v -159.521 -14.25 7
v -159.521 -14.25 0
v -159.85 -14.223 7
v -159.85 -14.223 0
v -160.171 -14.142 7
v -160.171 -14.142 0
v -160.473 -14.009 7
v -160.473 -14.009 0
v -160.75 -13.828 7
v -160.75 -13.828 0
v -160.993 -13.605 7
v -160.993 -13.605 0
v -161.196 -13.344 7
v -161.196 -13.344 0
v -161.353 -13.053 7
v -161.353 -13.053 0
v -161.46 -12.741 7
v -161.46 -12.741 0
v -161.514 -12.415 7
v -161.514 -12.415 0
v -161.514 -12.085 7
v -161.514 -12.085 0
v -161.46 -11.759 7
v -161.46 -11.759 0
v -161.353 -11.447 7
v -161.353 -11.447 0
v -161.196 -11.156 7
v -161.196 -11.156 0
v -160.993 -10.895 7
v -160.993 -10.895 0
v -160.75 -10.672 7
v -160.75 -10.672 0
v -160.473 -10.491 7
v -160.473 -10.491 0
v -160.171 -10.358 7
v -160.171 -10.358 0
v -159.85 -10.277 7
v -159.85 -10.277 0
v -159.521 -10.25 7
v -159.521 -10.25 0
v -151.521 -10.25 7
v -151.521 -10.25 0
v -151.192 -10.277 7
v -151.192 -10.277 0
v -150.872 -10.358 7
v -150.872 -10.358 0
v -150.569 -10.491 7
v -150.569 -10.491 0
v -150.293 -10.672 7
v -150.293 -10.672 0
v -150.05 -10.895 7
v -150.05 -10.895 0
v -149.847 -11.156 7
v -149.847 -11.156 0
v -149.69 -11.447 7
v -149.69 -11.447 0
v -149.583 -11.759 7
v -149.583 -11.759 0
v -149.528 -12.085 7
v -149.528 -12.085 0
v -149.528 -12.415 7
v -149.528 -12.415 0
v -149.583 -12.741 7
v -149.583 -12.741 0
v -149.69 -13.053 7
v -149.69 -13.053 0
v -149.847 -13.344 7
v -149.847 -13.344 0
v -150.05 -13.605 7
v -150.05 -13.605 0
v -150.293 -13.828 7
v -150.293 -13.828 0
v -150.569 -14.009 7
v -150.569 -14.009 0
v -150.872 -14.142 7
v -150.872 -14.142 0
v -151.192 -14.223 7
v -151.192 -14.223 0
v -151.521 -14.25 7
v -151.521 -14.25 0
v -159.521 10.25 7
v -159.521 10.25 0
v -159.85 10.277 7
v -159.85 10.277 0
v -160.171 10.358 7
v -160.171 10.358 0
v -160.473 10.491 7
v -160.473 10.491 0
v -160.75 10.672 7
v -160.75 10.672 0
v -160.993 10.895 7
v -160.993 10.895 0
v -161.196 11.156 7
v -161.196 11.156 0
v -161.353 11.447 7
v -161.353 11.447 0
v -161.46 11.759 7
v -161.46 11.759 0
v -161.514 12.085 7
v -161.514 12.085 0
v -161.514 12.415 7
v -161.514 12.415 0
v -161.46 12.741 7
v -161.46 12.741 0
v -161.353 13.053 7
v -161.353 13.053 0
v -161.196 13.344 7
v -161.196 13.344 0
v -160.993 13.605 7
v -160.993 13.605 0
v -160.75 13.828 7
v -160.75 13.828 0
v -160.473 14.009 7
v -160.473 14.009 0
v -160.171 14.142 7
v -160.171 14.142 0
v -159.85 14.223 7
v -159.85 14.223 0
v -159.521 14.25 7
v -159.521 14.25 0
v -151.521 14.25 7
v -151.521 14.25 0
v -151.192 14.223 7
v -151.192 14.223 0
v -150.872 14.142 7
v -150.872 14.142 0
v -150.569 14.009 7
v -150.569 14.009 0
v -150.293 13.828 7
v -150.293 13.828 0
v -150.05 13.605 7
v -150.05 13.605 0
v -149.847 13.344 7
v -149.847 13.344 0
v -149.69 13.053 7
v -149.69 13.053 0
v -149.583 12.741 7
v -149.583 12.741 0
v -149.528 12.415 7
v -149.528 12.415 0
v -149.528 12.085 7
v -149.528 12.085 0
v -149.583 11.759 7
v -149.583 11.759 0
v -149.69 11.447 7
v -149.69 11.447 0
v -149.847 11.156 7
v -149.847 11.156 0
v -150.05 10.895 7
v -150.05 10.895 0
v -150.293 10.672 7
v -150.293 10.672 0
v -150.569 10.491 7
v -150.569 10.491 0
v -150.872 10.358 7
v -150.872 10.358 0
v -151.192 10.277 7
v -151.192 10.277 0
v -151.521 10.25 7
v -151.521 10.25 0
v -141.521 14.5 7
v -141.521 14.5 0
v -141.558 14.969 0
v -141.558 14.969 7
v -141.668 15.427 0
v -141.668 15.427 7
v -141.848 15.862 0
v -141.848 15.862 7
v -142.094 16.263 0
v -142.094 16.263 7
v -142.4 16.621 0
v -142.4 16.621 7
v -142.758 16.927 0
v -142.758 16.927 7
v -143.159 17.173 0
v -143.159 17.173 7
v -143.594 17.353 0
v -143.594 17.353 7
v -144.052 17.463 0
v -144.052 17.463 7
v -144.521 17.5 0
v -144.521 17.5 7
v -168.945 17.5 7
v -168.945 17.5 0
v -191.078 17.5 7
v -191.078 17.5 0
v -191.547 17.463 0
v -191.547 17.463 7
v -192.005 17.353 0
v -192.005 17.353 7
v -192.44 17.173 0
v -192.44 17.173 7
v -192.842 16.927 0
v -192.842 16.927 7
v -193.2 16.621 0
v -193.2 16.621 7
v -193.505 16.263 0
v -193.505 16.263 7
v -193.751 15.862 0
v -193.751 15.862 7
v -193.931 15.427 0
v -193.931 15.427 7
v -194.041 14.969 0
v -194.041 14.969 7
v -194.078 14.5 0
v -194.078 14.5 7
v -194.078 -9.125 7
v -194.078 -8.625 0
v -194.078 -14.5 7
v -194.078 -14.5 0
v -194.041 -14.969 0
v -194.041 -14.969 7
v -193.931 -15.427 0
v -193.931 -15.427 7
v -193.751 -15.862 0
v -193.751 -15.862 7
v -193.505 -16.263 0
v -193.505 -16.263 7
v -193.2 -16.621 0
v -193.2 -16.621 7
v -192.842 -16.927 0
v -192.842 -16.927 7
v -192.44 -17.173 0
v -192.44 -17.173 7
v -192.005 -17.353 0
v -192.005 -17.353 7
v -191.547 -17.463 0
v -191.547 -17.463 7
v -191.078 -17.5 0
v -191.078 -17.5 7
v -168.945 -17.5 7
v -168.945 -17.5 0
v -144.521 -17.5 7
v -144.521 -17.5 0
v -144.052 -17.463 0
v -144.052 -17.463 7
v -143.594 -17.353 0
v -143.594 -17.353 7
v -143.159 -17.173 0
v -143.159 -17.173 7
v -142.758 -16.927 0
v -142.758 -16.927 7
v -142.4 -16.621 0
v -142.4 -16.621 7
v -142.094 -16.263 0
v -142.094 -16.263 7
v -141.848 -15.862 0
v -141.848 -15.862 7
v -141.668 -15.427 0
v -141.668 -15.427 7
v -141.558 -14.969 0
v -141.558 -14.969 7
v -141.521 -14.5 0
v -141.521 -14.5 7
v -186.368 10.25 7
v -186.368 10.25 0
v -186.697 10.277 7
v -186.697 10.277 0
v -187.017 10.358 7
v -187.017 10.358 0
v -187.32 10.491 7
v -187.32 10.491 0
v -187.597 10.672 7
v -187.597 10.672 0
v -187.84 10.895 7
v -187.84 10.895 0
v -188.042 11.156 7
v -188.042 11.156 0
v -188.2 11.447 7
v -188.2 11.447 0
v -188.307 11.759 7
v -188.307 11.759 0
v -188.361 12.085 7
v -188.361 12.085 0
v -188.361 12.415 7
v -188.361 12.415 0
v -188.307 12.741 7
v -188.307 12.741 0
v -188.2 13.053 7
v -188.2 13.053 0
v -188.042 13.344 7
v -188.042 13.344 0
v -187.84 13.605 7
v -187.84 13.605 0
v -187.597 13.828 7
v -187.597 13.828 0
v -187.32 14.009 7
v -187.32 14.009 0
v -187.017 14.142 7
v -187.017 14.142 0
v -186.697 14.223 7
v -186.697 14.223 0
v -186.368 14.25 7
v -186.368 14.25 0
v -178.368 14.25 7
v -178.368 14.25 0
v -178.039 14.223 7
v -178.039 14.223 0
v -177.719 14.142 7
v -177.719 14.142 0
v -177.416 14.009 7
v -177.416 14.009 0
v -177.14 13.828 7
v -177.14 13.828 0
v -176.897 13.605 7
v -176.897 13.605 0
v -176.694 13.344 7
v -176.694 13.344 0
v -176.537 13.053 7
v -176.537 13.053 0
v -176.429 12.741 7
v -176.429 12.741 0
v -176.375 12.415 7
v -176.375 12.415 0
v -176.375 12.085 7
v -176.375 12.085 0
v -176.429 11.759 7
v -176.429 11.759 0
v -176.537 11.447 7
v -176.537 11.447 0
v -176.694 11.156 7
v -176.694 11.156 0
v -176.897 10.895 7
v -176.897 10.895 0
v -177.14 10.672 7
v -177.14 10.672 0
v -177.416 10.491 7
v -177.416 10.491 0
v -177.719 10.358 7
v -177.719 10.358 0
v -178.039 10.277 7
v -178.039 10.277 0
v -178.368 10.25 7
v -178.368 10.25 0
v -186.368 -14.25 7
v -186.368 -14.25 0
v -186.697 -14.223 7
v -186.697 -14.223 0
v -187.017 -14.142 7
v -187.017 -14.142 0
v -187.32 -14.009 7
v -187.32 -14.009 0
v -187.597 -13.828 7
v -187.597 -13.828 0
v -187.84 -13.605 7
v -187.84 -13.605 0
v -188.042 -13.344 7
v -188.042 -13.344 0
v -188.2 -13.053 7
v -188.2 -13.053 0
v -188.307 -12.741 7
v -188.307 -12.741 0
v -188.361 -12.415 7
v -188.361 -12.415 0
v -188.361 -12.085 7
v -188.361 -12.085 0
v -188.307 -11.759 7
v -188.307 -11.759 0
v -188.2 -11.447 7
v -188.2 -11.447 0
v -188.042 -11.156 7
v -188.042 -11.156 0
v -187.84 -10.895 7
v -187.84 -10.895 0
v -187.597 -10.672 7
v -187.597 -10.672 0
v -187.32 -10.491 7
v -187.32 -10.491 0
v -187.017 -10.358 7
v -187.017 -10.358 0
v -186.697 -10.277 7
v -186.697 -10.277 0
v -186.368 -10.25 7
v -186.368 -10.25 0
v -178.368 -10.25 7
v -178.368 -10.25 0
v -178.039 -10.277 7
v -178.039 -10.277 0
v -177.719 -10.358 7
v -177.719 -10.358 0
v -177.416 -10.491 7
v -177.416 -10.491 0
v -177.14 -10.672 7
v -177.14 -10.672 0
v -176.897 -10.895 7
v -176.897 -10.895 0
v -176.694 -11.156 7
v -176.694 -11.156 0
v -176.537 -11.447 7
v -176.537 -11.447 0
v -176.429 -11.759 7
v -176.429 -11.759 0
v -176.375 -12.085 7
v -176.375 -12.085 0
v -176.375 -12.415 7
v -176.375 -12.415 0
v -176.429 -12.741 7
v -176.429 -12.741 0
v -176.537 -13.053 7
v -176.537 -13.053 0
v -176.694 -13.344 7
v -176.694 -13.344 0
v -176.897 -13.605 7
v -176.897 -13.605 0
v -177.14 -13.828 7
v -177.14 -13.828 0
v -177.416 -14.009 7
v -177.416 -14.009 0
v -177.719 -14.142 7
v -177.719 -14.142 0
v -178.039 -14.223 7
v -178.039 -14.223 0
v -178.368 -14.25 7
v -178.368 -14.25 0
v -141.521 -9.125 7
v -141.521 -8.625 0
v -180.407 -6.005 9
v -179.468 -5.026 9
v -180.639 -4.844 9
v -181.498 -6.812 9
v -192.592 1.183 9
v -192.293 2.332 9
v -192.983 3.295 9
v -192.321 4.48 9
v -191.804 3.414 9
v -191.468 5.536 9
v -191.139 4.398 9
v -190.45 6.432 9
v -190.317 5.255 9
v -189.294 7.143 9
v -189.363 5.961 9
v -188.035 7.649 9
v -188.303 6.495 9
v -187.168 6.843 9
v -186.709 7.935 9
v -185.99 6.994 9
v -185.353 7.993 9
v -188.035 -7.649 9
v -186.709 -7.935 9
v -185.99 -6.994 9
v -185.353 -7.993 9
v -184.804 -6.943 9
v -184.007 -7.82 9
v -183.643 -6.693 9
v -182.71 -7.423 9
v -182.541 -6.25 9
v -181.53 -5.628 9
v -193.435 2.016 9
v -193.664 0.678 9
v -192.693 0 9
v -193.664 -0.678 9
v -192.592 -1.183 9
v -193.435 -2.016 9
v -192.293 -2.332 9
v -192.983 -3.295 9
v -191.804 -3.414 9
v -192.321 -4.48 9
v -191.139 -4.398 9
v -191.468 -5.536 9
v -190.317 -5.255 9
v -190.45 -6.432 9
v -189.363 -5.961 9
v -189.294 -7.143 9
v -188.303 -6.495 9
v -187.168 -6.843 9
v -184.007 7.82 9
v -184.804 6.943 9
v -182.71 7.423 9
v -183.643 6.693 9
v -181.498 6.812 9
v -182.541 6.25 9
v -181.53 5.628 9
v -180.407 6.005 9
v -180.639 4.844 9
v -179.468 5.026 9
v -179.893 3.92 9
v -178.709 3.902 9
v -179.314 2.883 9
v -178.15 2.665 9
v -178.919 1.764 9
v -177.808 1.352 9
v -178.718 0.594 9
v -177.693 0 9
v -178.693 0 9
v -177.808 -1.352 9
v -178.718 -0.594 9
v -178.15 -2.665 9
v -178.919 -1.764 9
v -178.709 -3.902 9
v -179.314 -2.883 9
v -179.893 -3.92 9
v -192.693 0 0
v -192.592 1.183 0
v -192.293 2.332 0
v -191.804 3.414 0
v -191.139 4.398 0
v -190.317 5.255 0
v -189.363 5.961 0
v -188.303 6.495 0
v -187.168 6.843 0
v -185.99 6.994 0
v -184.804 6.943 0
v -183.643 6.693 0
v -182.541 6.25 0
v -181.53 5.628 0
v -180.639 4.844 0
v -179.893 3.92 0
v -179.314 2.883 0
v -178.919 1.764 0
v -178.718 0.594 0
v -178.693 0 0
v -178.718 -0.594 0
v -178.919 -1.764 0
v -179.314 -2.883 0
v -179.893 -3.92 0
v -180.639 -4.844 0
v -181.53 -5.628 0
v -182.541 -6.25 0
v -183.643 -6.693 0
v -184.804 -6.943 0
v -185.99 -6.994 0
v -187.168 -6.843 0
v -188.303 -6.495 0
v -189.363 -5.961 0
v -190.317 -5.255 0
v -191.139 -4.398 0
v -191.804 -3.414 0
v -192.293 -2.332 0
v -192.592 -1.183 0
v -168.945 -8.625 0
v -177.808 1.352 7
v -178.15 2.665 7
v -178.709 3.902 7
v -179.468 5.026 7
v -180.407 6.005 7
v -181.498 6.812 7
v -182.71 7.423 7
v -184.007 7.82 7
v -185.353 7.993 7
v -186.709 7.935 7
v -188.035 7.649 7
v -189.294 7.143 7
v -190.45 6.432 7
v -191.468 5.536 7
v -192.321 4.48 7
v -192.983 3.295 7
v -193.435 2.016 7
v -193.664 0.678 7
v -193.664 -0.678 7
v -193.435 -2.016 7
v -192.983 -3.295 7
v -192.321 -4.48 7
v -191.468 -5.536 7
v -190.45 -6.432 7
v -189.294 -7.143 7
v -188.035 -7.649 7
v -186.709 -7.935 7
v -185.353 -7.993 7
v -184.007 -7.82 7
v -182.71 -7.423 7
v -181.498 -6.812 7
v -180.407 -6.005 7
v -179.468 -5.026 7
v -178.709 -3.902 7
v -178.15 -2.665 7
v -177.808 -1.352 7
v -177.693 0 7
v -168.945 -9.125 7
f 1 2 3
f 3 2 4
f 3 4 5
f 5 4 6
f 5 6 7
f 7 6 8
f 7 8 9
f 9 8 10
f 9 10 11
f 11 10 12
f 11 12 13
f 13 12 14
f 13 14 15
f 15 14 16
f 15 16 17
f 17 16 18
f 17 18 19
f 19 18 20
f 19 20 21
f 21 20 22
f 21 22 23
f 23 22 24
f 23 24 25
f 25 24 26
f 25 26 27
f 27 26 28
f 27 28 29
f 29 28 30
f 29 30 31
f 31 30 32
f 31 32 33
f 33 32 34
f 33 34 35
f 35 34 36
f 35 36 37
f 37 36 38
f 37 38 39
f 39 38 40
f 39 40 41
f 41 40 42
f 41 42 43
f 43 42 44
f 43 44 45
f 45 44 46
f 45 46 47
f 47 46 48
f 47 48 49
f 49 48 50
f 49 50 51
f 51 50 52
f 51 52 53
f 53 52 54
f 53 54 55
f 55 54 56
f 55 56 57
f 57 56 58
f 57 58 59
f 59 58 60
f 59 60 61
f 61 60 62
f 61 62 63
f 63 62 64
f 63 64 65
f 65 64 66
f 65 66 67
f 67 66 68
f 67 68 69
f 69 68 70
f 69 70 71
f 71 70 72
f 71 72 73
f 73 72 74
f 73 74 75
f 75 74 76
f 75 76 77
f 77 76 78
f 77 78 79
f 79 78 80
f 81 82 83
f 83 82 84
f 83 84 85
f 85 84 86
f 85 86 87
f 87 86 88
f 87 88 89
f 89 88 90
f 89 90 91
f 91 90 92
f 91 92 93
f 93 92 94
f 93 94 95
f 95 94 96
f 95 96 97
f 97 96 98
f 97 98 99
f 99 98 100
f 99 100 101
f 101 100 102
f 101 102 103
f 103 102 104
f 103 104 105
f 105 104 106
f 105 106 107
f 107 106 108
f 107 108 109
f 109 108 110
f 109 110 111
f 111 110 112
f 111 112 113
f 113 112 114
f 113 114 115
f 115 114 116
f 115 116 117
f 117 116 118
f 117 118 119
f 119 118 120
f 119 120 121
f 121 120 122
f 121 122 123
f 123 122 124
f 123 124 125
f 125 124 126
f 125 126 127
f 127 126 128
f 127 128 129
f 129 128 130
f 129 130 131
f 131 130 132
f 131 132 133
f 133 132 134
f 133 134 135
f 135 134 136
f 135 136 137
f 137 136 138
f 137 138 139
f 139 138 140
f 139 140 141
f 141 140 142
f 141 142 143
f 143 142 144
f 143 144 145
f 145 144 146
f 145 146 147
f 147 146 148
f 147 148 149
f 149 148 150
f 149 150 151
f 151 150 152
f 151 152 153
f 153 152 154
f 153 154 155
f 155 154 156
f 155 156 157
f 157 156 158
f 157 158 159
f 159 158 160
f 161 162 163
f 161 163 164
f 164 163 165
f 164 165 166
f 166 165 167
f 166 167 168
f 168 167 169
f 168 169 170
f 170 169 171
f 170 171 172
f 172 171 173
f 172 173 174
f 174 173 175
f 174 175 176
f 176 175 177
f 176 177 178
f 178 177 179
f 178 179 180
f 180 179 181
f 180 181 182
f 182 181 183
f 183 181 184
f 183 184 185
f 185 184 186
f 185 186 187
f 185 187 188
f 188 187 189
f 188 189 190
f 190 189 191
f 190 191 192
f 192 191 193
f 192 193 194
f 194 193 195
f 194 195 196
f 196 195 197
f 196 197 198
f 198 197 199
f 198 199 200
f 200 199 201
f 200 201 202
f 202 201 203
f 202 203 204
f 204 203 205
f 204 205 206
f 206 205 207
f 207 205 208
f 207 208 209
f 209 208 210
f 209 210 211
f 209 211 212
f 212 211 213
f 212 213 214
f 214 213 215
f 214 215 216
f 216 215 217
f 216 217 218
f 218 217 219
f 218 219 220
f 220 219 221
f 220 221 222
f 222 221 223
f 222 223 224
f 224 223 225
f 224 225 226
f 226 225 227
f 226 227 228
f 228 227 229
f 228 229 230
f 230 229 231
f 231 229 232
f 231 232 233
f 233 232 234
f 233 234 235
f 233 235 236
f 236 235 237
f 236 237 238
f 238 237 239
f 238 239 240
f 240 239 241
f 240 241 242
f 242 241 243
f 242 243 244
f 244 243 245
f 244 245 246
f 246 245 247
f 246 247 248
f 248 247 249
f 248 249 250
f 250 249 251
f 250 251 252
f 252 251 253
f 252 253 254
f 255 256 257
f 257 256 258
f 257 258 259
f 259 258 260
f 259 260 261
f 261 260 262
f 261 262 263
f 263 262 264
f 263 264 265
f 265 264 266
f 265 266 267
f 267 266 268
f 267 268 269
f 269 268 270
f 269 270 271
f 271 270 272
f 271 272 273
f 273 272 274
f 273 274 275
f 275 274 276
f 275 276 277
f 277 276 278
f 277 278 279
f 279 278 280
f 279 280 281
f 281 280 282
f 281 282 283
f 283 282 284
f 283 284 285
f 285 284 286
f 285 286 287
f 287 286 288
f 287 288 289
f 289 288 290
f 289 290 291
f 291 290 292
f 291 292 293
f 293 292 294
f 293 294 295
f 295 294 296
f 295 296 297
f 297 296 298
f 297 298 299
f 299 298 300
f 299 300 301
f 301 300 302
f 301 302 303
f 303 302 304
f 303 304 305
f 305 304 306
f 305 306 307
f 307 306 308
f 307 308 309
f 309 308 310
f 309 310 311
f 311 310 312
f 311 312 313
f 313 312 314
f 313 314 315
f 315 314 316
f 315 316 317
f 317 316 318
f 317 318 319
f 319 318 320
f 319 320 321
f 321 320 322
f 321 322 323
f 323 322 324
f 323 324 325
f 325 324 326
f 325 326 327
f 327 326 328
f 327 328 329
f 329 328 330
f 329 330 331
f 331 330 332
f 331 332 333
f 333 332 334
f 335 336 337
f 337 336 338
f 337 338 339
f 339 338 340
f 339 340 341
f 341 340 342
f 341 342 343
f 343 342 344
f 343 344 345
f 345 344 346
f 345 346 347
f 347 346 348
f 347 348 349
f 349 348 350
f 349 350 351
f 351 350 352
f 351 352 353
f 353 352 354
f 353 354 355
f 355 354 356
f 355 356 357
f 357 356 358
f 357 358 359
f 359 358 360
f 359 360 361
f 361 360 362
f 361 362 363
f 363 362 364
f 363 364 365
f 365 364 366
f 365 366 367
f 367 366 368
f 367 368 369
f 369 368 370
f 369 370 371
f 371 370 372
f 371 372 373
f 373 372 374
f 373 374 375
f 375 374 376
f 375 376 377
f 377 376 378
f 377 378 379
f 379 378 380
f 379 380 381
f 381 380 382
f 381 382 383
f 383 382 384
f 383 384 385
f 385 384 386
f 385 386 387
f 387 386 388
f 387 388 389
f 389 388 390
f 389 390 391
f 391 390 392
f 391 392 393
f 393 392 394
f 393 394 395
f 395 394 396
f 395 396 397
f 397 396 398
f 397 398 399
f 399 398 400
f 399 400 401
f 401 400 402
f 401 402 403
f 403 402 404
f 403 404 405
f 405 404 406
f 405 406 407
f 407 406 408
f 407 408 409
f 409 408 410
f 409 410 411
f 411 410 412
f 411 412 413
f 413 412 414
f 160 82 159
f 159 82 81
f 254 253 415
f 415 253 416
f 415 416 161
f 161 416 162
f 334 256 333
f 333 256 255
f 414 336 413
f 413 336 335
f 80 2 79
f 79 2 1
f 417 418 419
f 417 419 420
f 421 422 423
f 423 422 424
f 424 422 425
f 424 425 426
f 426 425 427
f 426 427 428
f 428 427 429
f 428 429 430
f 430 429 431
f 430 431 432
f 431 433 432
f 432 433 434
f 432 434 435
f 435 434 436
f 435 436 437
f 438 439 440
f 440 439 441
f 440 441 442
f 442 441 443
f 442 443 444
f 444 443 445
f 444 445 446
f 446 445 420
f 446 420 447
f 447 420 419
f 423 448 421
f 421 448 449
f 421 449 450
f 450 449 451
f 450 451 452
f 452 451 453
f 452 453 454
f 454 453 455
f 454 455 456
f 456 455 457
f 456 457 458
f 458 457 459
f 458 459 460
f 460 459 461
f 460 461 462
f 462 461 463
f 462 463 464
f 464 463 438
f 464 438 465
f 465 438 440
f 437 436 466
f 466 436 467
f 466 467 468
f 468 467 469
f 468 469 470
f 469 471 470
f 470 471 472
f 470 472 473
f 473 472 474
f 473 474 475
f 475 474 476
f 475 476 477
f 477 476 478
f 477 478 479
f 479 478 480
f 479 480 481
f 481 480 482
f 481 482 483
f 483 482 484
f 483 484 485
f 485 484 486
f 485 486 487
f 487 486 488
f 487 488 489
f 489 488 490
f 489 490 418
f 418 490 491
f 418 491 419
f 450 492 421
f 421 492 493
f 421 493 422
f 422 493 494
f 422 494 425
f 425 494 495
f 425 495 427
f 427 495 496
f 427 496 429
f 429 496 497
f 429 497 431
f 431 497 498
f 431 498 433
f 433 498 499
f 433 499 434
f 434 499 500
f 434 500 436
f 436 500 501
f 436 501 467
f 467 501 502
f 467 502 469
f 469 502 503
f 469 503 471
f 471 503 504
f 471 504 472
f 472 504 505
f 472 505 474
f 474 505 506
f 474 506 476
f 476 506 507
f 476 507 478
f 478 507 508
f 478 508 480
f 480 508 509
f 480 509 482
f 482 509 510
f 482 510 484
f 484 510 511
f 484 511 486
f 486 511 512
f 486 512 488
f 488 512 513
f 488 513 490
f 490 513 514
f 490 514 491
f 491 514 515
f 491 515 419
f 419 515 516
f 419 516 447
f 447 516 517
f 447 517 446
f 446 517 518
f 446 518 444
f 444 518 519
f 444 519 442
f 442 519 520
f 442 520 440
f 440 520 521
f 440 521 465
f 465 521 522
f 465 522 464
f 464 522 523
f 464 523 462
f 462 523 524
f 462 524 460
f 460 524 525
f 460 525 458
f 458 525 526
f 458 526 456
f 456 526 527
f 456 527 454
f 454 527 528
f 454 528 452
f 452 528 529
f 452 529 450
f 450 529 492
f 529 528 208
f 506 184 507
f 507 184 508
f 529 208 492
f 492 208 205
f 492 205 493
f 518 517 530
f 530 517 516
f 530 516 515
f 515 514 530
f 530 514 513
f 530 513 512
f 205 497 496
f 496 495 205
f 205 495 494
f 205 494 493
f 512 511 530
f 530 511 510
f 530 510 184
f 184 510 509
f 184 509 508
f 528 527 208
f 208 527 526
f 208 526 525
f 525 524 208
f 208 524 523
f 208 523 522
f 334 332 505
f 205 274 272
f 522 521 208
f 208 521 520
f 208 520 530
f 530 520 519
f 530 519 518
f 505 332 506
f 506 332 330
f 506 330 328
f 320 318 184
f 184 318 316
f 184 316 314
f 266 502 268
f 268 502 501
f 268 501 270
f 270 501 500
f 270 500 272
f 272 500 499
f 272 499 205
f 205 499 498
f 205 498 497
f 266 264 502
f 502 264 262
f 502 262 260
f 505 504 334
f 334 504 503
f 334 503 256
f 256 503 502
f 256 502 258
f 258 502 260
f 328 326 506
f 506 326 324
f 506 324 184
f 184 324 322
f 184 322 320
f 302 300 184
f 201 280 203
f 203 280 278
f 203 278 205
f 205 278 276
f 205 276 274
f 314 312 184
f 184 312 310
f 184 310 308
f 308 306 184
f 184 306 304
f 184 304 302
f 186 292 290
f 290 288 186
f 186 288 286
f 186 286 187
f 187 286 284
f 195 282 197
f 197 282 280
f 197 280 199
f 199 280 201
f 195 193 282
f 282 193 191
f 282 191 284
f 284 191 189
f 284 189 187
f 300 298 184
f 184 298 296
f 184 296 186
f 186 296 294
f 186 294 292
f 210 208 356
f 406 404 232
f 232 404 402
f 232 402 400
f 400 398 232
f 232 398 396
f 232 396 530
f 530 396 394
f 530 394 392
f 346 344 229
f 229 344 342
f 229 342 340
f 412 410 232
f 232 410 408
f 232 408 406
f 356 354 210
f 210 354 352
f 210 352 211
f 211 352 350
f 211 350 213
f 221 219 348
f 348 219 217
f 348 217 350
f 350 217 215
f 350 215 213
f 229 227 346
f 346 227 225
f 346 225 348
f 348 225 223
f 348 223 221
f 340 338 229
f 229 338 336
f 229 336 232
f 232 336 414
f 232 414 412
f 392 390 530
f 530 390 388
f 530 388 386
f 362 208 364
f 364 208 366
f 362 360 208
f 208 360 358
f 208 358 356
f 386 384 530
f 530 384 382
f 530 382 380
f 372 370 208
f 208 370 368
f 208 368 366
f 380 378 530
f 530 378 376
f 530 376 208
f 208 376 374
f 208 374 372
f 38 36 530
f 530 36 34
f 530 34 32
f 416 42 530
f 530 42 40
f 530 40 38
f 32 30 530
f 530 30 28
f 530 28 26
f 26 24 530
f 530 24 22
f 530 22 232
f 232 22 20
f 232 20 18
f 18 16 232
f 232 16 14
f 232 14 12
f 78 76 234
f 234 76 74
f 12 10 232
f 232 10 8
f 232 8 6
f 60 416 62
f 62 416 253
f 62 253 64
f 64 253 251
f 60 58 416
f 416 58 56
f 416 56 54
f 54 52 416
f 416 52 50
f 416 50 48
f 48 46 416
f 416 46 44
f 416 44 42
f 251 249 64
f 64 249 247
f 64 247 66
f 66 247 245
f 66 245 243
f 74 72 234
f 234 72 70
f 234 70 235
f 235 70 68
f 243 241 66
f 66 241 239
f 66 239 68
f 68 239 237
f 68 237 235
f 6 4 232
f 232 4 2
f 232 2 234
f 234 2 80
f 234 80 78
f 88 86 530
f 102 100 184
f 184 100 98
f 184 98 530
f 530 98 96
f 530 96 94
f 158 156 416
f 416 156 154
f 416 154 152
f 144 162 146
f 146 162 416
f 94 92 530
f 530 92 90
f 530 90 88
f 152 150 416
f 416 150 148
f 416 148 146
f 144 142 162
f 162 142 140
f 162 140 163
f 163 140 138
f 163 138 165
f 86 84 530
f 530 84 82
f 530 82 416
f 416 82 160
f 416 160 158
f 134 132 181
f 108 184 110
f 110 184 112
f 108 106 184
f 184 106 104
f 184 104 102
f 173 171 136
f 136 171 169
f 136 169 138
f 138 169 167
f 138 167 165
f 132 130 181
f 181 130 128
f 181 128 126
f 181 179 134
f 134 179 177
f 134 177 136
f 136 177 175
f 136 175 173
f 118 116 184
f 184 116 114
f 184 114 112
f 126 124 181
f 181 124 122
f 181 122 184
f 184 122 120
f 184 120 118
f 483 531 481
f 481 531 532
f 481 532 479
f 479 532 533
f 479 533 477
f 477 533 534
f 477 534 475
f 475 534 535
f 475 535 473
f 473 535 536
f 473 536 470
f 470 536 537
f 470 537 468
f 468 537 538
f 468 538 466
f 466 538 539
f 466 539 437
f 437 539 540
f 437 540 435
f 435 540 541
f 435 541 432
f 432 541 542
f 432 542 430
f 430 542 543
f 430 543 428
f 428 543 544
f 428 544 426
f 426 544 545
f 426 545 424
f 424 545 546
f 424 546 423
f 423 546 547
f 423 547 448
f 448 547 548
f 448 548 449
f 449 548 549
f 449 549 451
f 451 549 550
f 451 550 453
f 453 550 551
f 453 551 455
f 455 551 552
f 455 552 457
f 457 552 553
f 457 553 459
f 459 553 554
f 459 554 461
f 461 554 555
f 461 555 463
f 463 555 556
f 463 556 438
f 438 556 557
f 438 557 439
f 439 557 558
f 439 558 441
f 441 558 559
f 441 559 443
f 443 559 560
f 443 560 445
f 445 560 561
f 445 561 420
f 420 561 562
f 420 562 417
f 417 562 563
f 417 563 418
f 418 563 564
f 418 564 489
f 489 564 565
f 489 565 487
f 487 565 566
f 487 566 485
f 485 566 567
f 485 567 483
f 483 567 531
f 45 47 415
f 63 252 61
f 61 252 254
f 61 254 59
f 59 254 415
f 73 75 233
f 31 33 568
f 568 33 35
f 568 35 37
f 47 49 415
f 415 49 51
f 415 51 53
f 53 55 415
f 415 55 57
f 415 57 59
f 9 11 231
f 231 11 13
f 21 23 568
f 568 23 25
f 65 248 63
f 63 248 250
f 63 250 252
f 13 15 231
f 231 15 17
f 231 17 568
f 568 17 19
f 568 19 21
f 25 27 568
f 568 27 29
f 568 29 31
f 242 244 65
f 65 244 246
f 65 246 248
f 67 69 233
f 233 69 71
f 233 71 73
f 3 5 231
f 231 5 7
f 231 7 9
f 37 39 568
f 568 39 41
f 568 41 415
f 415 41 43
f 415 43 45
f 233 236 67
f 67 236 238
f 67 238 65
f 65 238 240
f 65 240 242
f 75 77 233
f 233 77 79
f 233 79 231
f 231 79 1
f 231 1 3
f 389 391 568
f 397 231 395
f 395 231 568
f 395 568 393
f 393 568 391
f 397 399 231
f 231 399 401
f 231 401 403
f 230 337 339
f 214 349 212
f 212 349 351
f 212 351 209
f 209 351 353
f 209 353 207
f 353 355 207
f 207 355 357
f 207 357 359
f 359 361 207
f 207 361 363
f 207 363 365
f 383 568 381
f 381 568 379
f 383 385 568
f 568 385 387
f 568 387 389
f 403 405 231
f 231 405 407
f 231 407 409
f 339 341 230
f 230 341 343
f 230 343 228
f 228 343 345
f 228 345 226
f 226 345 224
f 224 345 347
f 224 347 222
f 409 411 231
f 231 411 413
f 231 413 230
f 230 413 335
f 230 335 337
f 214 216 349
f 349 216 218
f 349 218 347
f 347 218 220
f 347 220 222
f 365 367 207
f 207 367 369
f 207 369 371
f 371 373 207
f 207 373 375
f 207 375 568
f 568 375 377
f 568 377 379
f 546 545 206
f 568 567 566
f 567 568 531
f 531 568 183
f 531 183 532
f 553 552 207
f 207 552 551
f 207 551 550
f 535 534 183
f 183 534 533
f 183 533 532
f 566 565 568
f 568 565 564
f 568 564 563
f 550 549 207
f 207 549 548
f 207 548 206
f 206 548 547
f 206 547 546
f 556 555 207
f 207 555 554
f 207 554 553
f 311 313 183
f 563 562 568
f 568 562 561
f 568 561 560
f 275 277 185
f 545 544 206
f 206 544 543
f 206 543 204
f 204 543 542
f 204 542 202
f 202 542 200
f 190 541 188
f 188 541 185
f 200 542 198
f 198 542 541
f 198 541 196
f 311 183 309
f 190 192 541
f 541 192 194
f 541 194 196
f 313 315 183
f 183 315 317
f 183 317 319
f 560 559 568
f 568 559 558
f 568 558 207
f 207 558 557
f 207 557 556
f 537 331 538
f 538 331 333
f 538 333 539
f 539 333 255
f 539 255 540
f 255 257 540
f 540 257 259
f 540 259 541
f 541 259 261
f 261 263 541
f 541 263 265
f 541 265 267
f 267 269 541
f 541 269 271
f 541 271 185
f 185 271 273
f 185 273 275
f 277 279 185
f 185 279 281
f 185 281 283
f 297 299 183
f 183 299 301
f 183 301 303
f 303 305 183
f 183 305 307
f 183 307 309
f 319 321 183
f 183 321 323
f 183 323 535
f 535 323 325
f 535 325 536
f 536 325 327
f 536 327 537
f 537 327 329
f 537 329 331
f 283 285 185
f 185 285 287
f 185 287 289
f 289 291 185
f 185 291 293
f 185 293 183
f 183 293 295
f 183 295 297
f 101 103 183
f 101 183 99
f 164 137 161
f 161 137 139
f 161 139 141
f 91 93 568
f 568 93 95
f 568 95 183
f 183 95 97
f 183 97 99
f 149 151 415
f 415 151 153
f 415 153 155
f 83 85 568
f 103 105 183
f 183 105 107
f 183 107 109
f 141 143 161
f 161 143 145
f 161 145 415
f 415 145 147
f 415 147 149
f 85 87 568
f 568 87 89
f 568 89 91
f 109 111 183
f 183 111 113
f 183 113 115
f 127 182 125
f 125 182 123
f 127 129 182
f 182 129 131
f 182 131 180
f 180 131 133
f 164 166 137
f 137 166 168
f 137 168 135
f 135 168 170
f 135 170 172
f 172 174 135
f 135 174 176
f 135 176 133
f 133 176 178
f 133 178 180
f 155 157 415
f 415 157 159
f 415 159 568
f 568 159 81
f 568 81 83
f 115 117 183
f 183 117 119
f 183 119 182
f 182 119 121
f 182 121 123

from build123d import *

# Parameters (mm, degrees)
SKETCH1_R           = 7
BOSS_EXTRUDE1_DEPTH = 9
CUT_EXTRUDE1_START  = -2
SKETCH2_R           = 8
CUT_EXTRUDE1_DEPTH  = 2


with BuildPart() as part:
    # Sketch1 → Boss-Extrude1 (new body)
    with BuildSketch(Plane.XY):
        with BuildLine():
            Line((-191.078194945, -17.5), (-144.521304841, -17.5))
            ThreePointArc((-144.521304841, -17.5), (-142.399984498, -16.621320344), (-141.521304841, -14.5))
            Line((-141.521304841, -14.5), (-141.521304841, 14.5))
            ThreePointArc((-141.521304841, 14.5), (-142.399984498, 16.621320344), (-144.521304841, 17.5))
            Line((-144.521304841, 17.5), (-191.078194945, 17.5))
            ThreePointArc((-191.078194945, 17.5), (-193.199515288, 16.621320344), (-194.078194945, 14.5))
            Line((-194.078194945, 14.5), (-194.078194945, -14.5))
            ThreePointArc((-194.078194945, -14.5), (-193.199515288, -16.621320344), (-191.078194945, -17.5))
        make_face()
        with Locations((-185.692771804, 0)):
            Circle(SKETCH1_R, mode=Mode.SUBTRACT)
        with BuildLine():
            Line((-178.368092358, 10.25), (-186.368092358, 10.25))
            ThreePointArc((-186.368092358, 10.25), (-188.368092358, 12.25), (-186.368092358, 14.25))
            Line((-186.368092358, 14.25), (-178.368092358, 14.25))
            ThreePointArc((-178.368092358, 14.25), (-176.368092358, 12.25), (-178.368092358, 10.25))
        make_face(mode=Mode.SUBTRACT)
        with BuildLine():
            Line((-151.521304841, -14.25), (-159.521304841, -14.25))
            ThreePointArc((-159.521304841, -14.25), (-161.521304841, -12.25), (-159.521304841, -10.25))
            Line((-159.521304841, -10.25), (-151.521304841, -10.25))
            ThreePointArc((-151.521304841, -10.25), (-149.521304841, -12.25), (-151.521304841, -14.25))
        make_face(mode=Mode.SUBTRACT)
        with BuildLine():
            Line((-151.521304841, 10.25), (-159.521304841, 10.25))
            ThreePointArc((-159.521304841, 10.25), (-161.521304841, 12.25), (-159.521304841, 14.25))
            Line((-159.521304841, 14.25), (-151.521304841, 14.25))
            ThreePointArc((-151.521304841, 14.25), (-149.521304841, 12.25), (-151.521304841, 10.25))
        make_face(mode=Mode.SUBTRACT)
        with BuildLine():
            Line((-178.368092358, -14.25), (-186.368092358, -14.25))
            ThreePointArc((-186.368092358, -14.25), (-188.368092358, -12.25), (-186.368092358, -10.25))
            Line((-186.368092358, -10.25), (-178.368092358, -10.25))
            ThreePointArc((-178.368092358, -10.25), (-176.368092358, -12.25), (-178.368092358, -14.25))
        make_face(mode=Mode.SUBTRACT)
    extrude(amount=BOSS_EXTRUDE1_DEPTH)

    # Sketch2 → Cut-Extrude1 (cut)
    with BuildSketch(Plane.XY.offset(9).offset(CUT_EXTRUDE1_START)):
        with BuildLine():
            Line((-194.078194945, 14.5), (-194.078194945, -14.5))
            ThreePointArc((-194.078194945, -14.5), (-193.199515288, -16.621320344), (-191.078194945, -17.5))
            Line((-191.078194945, -17.5), (-144.521304841, -17.5))
            ThreePointArc((-144.521304841, -17.5), (-142.399984498, -16.621320344), (-141.521304841, -14.5))
            Line((-141.521304841, -14.5), (-141.521304841, 14.5))
            ThreePointArc((-141.521304841, 14.5), (-142.399984498, 16.621320344), (-144.521304841, 17.5))
            Line((-144.521304841, 17.5), (-191.078194945, 17.5))
            ThreePointArc((-191.078194945, 17.5), (-193.199515288, 16.621320344), (-194.078194945, 14.5))
        make_face()
        with Locations((-185.692771804, 0)):
            Circle(SKETCH2_R, mode=Mode.SUBTRACT)
        with BuildLine():
            ThreePointArc((-186.368092358, -14.25), (-188.368092358, -12.25), (-186.368092358, -10.25))
            Line((-186.368092358, -10.25), (-178.368092358, -10.25))
            ThreePointArc((-178.368092358, -10.25), (-176.368092358, -12.25), (-178.368092358, -14.25))
            Line((-178.368092358, -14.25), (-186.368092358, -14.25))
        make_face(mode=Mode.SUBTRACT)
        with BuildLine():
            Line((-151.521304841, -14.25), (-159.521304841, -14.25))
            ThreePointArc((-159.521304841, -14.25), (-161.521304841, -12.25), (-159.521304841, -10.25))
            Line((-159.521304841, -10.25), (-151.521304841, -10.25))
            ThreePointArc((-151.521304841, -10.25), (-149.521304841, -12.25), (-151.521304841, -14.25))
        make_face(mode=Mode.SUBTRACT)
        with BuildLine():
            ThreePointArc((-159.521304841, 10.25), (-161.521304841, 12.25), (-159.521304841, 14.25))
            Line((-159.521304841, 14.25), (-151.521304841, 14.25))
            ThreePointArc((-151.521304841, 14.25), (-149.521304841, 12.25), (-151.521304841, 10.25))
            Line((-151.521304841, 10.25), (-159.521304841, 10.25))
        make_face(mode=Mode.SUBTRACT)
        with BuildLine():
            Line((-186.368092358, 14.25), (-178.368092358, 14.25))
            ThreePointArc((-178.368092358, 14.25), (-176.368092358, 12.25), (-178.368092358, 10.25))
            Line((-178.368092358, 10.25), (-186.368092358, 10.25))
            ThreePointArc((-186.368092358, 10.25), (-188.368092358, 12.25), (-186.368092358, 14.25))
        make_face(mode=Mode.SUBTRACT)
    extrude(amount=CUT_EXTRUDE1_DEPTH, mode=Mode.SUBTRACT)


solid = part.part
